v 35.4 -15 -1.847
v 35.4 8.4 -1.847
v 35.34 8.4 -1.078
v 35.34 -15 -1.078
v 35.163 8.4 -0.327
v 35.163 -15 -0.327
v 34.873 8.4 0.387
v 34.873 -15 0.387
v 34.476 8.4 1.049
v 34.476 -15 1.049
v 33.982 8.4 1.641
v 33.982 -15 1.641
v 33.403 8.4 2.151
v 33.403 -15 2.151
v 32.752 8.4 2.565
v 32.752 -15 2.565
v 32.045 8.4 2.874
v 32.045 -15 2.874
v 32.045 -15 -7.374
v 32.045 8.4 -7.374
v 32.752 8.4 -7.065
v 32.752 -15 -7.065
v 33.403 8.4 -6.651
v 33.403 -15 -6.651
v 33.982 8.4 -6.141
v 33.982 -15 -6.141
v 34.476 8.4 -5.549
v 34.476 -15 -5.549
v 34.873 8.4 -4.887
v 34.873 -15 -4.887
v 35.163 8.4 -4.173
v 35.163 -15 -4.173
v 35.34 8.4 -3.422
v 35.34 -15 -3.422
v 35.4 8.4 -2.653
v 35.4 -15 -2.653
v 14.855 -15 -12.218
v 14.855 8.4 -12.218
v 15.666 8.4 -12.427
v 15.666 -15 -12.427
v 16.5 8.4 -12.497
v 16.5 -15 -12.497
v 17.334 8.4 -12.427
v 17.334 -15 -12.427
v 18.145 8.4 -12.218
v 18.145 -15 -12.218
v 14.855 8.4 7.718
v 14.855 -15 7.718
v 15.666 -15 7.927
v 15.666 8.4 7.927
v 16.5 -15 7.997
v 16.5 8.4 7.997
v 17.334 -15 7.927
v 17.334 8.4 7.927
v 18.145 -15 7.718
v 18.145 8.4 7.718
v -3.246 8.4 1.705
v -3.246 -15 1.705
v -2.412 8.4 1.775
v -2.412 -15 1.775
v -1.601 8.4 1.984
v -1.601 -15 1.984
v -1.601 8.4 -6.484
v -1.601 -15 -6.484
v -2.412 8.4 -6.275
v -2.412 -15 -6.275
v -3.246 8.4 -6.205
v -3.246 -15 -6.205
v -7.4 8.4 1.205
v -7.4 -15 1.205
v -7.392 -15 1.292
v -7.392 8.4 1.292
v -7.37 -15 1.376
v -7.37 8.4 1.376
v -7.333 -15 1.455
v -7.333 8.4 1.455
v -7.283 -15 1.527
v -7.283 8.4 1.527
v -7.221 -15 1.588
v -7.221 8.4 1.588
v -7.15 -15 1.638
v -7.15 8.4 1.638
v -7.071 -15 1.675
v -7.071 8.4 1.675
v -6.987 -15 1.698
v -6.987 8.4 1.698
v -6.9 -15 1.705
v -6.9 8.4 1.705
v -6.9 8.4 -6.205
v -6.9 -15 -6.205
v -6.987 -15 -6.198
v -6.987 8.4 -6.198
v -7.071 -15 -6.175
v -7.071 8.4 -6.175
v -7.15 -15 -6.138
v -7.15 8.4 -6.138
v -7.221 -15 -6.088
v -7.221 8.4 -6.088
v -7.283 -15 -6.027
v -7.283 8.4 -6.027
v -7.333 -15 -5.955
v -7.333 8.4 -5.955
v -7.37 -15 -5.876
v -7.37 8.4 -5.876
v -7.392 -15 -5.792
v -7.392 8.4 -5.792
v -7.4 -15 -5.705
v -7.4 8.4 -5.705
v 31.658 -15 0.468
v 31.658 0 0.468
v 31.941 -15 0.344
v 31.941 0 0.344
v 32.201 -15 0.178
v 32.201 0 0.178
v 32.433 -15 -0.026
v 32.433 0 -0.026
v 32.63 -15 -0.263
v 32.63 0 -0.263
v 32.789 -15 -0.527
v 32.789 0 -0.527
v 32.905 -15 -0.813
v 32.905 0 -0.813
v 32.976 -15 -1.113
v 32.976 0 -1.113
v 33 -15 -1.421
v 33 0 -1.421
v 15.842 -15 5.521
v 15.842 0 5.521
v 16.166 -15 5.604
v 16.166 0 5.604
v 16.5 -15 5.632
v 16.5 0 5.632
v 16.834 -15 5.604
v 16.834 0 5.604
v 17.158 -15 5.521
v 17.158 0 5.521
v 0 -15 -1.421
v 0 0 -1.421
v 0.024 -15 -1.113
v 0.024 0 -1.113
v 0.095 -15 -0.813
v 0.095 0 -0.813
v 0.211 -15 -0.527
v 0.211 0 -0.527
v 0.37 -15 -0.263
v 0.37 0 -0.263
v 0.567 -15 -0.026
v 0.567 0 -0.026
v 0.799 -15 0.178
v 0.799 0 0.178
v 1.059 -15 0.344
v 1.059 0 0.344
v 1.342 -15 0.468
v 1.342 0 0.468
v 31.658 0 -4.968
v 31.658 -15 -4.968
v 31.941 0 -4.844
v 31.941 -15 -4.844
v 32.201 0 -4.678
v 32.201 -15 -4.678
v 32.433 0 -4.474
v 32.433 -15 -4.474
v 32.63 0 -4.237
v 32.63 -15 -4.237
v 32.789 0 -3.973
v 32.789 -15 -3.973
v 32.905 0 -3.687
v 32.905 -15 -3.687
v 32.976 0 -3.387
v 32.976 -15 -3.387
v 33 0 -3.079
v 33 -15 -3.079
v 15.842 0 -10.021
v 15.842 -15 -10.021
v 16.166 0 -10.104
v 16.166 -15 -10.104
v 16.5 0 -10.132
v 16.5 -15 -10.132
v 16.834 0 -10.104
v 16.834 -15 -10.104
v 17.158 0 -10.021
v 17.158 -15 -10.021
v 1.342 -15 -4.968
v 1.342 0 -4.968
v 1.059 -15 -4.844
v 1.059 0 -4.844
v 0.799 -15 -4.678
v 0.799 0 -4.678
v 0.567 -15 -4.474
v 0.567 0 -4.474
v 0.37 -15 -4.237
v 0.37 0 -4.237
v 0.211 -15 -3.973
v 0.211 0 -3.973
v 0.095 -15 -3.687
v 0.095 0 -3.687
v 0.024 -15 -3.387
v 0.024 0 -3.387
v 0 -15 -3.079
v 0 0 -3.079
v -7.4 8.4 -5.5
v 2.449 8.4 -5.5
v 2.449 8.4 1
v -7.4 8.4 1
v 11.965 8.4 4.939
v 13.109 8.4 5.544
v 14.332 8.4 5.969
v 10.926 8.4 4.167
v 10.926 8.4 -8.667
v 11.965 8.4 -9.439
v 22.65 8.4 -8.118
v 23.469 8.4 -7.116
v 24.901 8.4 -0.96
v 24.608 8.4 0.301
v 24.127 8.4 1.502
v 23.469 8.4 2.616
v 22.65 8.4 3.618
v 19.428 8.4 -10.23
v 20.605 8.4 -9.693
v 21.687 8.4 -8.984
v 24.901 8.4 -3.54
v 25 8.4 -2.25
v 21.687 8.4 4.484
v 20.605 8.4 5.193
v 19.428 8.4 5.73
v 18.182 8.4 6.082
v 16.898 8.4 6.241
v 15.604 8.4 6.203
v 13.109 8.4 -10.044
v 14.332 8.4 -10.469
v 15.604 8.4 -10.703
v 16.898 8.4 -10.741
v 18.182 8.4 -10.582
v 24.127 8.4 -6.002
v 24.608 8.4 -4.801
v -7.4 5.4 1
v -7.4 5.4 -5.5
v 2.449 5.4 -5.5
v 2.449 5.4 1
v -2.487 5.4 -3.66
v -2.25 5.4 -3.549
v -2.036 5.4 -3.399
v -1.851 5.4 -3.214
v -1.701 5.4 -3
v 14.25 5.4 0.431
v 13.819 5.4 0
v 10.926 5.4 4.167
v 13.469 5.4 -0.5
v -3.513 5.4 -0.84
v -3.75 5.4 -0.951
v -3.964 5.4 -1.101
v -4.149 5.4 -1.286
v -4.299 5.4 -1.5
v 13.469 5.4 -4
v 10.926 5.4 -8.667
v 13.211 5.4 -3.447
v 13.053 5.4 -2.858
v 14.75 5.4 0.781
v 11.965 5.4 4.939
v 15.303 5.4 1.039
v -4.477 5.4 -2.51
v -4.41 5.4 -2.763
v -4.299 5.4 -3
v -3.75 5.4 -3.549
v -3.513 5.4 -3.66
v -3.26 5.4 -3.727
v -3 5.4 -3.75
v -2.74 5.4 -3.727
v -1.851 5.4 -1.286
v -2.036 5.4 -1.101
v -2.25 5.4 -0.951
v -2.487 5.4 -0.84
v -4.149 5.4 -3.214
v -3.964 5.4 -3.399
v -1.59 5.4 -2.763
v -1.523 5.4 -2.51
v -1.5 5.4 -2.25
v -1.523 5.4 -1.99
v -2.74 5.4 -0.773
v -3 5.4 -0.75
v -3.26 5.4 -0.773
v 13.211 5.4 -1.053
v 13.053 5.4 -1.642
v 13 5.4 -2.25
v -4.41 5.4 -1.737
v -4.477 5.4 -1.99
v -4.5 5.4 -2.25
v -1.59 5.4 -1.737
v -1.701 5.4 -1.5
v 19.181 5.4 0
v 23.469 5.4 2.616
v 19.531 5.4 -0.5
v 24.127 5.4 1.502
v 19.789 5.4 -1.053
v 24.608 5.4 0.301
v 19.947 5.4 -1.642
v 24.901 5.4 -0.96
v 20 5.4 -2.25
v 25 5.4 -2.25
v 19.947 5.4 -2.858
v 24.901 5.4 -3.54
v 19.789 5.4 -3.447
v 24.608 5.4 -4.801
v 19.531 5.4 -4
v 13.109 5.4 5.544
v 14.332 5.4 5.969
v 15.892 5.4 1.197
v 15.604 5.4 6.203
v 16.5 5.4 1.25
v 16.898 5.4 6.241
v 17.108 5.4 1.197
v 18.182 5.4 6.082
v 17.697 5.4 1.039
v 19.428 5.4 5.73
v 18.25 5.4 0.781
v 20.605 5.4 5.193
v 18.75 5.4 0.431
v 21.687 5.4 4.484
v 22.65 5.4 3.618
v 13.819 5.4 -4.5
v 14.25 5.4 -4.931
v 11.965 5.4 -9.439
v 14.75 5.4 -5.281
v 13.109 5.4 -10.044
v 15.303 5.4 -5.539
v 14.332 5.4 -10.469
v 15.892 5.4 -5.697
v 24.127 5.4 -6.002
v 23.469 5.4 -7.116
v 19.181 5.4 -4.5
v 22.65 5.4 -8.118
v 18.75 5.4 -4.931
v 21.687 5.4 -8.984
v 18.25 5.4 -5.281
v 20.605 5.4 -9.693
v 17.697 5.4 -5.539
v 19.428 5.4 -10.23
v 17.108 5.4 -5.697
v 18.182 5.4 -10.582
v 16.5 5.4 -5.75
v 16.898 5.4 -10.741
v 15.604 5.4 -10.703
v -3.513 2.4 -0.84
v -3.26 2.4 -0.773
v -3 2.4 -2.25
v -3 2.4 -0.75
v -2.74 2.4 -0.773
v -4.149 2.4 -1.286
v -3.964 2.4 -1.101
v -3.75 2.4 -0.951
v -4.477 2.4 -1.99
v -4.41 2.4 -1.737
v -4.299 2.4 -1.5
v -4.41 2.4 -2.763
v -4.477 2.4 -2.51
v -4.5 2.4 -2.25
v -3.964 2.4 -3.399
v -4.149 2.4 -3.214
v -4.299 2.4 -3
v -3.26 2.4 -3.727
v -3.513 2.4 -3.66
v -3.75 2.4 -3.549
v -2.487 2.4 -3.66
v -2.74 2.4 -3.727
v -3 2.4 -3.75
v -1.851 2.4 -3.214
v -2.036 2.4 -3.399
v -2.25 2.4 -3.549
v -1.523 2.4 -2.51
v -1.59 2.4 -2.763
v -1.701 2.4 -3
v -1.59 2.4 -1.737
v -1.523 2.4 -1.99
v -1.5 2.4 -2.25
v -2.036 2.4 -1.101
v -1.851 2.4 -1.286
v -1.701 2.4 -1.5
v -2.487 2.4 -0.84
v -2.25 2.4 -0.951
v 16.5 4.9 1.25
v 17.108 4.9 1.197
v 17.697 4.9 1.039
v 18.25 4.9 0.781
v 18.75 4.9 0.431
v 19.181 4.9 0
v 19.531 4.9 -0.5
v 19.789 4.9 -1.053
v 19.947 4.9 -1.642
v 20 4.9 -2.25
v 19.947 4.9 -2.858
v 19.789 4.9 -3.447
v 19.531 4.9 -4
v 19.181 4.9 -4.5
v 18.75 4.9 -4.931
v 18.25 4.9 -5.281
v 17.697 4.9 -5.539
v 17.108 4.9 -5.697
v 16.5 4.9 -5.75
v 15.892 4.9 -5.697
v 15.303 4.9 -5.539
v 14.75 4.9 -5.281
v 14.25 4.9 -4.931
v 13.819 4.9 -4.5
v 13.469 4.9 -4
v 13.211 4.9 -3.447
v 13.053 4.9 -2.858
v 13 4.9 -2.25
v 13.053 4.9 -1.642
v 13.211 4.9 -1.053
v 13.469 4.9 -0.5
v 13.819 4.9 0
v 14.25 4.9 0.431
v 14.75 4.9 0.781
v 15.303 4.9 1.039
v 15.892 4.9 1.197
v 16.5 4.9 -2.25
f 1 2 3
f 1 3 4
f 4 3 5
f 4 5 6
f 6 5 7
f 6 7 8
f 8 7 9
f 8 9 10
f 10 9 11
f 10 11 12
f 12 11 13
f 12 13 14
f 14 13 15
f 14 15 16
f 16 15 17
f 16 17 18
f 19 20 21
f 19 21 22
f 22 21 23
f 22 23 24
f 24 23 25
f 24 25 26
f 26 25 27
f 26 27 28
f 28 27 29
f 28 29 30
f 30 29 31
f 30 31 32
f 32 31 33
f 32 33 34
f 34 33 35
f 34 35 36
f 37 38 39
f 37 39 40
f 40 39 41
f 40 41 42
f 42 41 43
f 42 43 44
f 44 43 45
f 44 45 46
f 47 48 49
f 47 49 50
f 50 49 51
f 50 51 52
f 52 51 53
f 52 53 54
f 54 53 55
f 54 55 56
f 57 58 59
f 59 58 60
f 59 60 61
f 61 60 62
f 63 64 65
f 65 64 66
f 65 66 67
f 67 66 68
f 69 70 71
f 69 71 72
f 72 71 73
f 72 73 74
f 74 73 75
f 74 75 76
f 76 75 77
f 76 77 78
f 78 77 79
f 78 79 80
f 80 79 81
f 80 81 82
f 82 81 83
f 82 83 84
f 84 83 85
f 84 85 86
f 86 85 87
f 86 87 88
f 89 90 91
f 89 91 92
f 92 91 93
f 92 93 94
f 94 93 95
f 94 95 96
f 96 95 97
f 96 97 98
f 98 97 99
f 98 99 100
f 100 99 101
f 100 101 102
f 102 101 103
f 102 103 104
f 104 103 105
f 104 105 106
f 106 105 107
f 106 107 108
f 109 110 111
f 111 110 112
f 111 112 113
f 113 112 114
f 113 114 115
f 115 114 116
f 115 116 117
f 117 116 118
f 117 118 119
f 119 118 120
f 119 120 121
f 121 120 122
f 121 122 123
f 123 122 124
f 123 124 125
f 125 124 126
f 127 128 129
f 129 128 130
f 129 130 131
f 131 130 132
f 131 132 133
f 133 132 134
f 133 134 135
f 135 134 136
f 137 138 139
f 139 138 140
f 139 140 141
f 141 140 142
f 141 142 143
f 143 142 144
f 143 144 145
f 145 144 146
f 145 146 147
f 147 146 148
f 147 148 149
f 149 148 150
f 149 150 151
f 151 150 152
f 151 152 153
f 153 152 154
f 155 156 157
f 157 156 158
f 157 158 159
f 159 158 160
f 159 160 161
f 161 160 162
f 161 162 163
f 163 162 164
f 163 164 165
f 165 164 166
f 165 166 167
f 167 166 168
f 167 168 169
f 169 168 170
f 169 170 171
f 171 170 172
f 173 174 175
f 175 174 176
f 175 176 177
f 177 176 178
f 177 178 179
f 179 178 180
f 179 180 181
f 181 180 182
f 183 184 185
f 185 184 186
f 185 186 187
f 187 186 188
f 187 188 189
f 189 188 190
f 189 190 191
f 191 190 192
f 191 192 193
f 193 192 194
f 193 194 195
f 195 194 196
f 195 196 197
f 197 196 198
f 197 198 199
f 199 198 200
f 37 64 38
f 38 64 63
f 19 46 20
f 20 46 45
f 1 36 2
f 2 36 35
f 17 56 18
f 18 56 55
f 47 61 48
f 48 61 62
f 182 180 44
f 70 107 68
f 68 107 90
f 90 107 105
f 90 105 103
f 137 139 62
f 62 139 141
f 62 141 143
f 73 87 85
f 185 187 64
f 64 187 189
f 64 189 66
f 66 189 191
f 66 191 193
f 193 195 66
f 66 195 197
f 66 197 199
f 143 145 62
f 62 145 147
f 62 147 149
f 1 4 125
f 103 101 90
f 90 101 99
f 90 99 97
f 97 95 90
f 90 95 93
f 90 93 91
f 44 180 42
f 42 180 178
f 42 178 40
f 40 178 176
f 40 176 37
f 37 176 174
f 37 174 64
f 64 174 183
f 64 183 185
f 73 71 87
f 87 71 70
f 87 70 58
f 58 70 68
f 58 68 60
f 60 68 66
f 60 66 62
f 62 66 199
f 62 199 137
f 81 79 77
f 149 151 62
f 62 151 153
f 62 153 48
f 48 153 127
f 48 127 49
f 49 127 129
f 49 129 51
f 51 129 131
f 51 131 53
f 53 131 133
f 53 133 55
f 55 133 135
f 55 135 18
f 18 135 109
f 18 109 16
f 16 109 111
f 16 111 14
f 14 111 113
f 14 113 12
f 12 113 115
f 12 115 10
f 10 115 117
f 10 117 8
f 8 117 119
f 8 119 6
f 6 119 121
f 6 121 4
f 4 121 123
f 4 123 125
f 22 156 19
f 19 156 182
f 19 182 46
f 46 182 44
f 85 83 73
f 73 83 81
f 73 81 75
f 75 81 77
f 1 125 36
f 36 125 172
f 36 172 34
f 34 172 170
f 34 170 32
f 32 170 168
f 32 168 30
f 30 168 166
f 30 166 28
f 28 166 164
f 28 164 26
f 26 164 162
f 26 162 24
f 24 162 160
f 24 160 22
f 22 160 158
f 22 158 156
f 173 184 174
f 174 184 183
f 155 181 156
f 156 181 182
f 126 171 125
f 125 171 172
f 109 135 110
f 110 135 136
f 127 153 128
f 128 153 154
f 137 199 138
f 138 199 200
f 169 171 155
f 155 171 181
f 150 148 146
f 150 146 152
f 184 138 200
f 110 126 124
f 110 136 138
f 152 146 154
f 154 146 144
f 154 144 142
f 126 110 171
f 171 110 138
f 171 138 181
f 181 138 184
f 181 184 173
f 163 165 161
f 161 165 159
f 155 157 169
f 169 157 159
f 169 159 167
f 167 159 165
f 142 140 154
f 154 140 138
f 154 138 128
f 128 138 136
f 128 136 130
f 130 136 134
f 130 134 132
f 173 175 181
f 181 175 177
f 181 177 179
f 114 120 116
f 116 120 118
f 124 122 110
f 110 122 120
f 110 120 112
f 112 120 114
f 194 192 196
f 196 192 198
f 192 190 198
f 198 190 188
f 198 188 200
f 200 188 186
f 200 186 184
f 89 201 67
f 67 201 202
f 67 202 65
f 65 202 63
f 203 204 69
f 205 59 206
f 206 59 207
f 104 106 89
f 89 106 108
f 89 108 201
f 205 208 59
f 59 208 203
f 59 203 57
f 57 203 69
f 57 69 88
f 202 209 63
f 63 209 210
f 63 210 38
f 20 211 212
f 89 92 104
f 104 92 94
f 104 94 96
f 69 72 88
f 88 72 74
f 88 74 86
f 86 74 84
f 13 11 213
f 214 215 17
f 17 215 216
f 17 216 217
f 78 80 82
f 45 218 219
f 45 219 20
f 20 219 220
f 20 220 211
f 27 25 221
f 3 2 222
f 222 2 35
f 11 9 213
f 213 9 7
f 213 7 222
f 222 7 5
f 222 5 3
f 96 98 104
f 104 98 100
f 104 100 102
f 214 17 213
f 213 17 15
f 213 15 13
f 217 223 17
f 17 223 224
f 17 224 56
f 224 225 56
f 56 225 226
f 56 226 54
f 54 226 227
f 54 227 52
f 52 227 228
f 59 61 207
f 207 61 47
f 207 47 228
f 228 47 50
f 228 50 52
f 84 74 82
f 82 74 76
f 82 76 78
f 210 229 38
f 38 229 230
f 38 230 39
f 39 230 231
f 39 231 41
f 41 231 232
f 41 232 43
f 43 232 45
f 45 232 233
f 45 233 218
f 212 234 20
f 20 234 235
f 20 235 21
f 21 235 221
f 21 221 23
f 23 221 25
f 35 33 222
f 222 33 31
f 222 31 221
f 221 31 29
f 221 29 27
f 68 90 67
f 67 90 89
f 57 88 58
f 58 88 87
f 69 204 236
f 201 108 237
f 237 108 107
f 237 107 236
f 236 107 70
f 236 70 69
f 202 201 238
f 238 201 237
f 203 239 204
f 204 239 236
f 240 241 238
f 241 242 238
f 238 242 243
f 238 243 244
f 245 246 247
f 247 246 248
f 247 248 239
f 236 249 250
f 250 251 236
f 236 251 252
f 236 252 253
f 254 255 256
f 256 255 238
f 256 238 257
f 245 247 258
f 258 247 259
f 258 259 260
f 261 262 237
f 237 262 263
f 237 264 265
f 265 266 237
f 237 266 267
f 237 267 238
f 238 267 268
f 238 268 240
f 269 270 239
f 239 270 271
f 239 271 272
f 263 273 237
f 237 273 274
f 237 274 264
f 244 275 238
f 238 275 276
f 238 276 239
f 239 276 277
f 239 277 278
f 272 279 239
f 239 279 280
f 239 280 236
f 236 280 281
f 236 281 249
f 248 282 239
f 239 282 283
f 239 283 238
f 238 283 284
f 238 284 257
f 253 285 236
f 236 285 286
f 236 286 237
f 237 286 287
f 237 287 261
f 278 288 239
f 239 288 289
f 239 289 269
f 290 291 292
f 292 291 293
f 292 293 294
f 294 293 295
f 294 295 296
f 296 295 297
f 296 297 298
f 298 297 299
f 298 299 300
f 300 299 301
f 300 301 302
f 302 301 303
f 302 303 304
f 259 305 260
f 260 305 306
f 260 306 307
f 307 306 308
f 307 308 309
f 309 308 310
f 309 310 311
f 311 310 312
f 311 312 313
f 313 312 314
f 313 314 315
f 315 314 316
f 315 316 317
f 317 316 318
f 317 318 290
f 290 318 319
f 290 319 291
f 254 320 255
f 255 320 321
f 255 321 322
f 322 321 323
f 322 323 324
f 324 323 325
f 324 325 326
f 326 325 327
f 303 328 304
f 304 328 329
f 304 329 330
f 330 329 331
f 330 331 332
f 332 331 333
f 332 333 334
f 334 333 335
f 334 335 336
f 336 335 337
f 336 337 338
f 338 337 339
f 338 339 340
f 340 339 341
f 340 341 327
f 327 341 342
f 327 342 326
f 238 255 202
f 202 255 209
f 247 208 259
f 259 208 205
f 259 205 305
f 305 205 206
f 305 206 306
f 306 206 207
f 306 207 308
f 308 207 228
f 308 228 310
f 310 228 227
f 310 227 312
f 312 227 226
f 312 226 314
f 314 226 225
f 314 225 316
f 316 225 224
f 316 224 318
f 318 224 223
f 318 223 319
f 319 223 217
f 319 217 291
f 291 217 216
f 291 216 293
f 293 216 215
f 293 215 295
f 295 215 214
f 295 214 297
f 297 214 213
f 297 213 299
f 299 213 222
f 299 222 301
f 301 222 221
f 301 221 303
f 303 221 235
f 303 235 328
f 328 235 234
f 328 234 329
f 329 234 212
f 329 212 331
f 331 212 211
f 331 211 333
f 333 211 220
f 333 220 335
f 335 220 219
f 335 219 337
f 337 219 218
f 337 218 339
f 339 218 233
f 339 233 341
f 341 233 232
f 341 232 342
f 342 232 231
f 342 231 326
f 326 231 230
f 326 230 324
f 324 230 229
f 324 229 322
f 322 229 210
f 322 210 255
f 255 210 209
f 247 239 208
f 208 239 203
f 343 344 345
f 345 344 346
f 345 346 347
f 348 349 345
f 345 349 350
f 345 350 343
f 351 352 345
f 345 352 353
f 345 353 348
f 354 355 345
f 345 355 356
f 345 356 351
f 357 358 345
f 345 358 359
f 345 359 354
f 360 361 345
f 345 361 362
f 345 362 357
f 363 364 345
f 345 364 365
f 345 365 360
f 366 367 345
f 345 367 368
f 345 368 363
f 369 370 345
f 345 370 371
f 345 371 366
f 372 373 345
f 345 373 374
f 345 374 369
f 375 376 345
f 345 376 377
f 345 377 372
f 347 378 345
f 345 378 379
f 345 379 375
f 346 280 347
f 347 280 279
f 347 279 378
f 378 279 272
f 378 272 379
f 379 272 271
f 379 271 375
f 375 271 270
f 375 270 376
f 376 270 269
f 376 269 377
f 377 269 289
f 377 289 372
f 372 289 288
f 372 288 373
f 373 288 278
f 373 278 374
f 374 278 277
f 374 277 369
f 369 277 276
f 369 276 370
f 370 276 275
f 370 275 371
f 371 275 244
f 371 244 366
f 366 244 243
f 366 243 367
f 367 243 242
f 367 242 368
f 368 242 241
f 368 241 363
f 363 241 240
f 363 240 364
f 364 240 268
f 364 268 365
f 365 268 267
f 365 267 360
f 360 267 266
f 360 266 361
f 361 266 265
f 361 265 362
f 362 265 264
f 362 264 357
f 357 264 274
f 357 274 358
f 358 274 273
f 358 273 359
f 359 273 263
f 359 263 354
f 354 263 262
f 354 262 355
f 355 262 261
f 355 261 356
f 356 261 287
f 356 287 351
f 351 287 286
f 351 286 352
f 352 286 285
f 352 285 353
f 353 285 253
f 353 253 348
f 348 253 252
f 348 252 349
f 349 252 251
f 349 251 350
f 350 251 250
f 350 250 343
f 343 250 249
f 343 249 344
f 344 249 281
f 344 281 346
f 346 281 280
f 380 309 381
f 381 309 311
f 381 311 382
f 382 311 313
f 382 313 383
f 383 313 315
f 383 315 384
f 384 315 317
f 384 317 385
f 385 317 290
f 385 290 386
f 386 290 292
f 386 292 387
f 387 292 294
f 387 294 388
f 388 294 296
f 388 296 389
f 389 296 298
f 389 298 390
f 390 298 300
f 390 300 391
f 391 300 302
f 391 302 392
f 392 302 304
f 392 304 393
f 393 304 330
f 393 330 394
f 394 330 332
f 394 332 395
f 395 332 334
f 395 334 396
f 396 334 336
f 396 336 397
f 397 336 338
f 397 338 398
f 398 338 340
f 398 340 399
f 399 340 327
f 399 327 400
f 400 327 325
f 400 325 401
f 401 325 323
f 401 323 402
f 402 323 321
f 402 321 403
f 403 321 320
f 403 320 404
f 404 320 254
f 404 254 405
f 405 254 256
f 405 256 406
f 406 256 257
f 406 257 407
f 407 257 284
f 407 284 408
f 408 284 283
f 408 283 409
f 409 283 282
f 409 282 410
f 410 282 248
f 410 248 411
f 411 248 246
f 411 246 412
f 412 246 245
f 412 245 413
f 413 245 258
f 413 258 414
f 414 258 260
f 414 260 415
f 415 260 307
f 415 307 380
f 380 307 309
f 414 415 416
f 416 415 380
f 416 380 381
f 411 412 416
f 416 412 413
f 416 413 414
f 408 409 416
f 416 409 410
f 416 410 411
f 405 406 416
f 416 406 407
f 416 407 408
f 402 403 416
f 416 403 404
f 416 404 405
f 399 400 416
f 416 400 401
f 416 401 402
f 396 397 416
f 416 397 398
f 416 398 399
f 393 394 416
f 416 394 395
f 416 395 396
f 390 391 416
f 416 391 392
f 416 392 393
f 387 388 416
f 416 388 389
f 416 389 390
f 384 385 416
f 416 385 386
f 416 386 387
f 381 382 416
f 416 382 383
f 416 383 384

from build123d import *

# Parameters (mm, degrees)
BOSS_EXTRUDE1_DEPTH = 15
FILLET2_R           = 2
FILLET3_R           = 2
FILLET4_R           = 2
FILLET5_R           = 2
FILLET6_R           = 2
FILLET7_R           = 2
BOSS_EXTRUDE2_DEPTH = 8.4
SKETCH4_W           = 7.910383638
SKETCH4_H           = 23.4
BOSS_EXTRUDE3_DEPTH = 5
CUT_EXTRUDE1_DEPTH  = 6
CUT_EXTRUDE2_DEPTH  = 3
SKETCH5_R           = 3.5
CUT_EXTRUDE3_DEPTH  = 0.5
FILLET8_R           = 0.5
FILLET9_R           = 0.5
FILLET10_R          = 5
FILLET11_R          = 5
FILLET12_R          = 5
FILLET13_R          = 5
FILLET14_R          = 5
FILLET15_R          = 5


with BuildPart() as part:
    # Sketch1 → Boss-Extrude1 (new body)
    with BuildSketch(Plane(origin=(0, 0, 0), x_dir=(1, 0, 0), z_dir=(0, 1, 0))):
        Polygon((-2.4, -1.705191819), (16.5, -8.291555455), (35.4, -1.705191819), (35.4, 6.205191819), (16.5, 12.791555455), (-2.4, 6.205191819), align=None)
        Polygon((0, 0), (16.5, -5.75), (33, 0), (33, 4.5), (16.5, 10.25), (0, 4.5), align=None, mode=Mode.SUBTRACT)
    extrude(amount=-BOSS_EXTRUDE1_DEPTH)

    # Fillet2
    fillet2_edges = [part.edges().sort_by_distance(p)[0] for p in [
        (0, -7.5, -4.5),
    ]]
    fillet(fillet2_edges, radius=FILLET2_R)

    # Fillet3
    fillet3_edges = [part.edges().sort_by_distance(p)[0] for p in [
        (16.5, -7.5, -10.25),
    ]]
    fillet(fillet3_edges, radius=FILLET3_R)

    # Fillet4
    fillet4_edges = [part.edges().sort_by_distance(p)[0] for p in [
        (33, -7.5, -4.5),
    ]]
    fillet(fillet4_edges, radius=FILLET4_R)

    # Fillet5
    fillet5_edges = [part.edges().sort_by_distance(p)[0] for p in [
        (0, -7.5, 0),
    ]]
    fillet(fillet5_edges, radius=FILLET5_R)

    # Fillet6
    fillet6_edges = [part.edges().sort_by_distance(p)[0] for p in [
        (16.5, -7.5, 5.75),
    ]]
    fillet(fillet6_edges, radius=FILLET6_R)

    # Fillet7
    fillet7_edges = [part.edges().sort_by_distance(p)[0] for p in [
        (33, -7.5, 0),
    ]]
    fillet(fillet7_edges, radius=FILLET7_R)

    # Sketch2 → Boss-Extrude2 (add)
    with BuildSketch(Plane(origin=(0, 0, 0), x_dir=(1, 0, 0), z_dir=(0, 1, 0))):
        Polygon((16.5, -8.291555455), (-2.4, -1.705191819), (-2.4, 6.205191819), (16.5, 12.791555455), (35.4, 6.205191819), (35.4, -1.705191819), align=None)
    extrude(amount=BOSS_EXTRUDE2_DEPTH)

    # Sketch4 → Boss-Extrude3 (add)
    with BuildSketch(Plane.ZY.offset(2.4)):
        with Locations((-2.25, -3.3)):
            Rectangle(SKETCH4_W, SKETCH4_H)
    extrude(amount=BOSS_EXTRUDE3_DEPTH)

    # Sketch3 → Cut-Extrude1 (cut)
    with BuildSketch(Plane(origin=(0, 8.4, 0), x_dir=(1, 0, 0), z_dir=(0, 1, 0))):
        with BuildLine():
            Line((-2.4, 2.25), (-2.4, 0.875227292))
            ThreePointArc((-2.4, 0.875227292), (-1.74500996, 1.428416164), (-1.5, 2.25))
            Line((-1.5, 2.25), (-2.4, 2.25))
        make_face()
        with BuildLine():
            ThreePointArc((-4.5, 2.25), (-3.821583836, 0.99500996), (-2.4, 0.875227292))
            Line((-2.4, 0.875227292), (-2.4, 2.25))
            Line((-2.4, 2.25), (-4.5, 2.25))
        make_face()
        with BuildLine():
            Line((-2.4, 2.25), (-1.5, 2.25))
            ThreePointArc((-1.5, 2.25), (-1.74500996, 3.071583836), (-2.4, 3.624772708))
            Line((-2.4, 3.624772708), (-2.4, 2.25))
        make_face()
        with BuildLine():
            ThreePointArc((-2.4, 3.624772708), (-3.821583836, 3.50499004), (-4.5, 2.25))
            Line((-4.5, 2.25), (-2.4, 2.25))
            Line((-2.4, 2.25), (-2.4, 3.624772708))
        make_face()
        with BuildLine():
            Line((-2.4, 2.25), (-2.4, 0.875227292))
            ThreePointArc((-2.4, 0.875227292), (-1.74500996, 1.428416164), (-1.5, 2.25))
            Line((-1.5, 2.25), (-2.4, 2.25))
        make_face()
        with BuildLine():
            ThreePointArc((-4.5, 2.25), (-3.821583836, 0.99500996), (-2.4, 0.875227292))
            Line((-2.4, 0.875227292), (-2.4, 2.25))
            Line((-2.4, 2.25), (-4.5, 2.25))
        make_face()
        with BuildLine():
            Line((-2.4, 2.25), (-1.5, 2.25))
            ThreePointArc((-1.5, 2.25), (-1.74500996, 3.071583836), (-2.4, 3.624772708))
            Line((-2.4, 3.624772708), (-2.4, 2.25))
        make_face()
        with BuildLine():
            ThreePointArc((-2.4, 3.624772708), (-3.821583836, 3.50499004), (-4.5, 2.25))
            Line((-4.5, 2.25), (-2.4, 2.25))
            Line((-2.4, 2.25), (-2.4, 3.624772708))
        make_face()
        with BuildLine():
            Line((-2.4, 2.25), (-2.4, 0.875227292))
            ThreePointArc((-2.4, 0.875227292), (-1.74500996, 1.428416164), (-1.5, 2.25))
            Line((-1.5, 2.25), (-2.4, 2.25))
        make_face()
        with BuildLine():
            ThreePointArc((-4.5, 2.25), (-3.821583836, 0.99500996), (-2.4, 0.875227292))
            Line((-2.4, 0.875227292), (-2.4, 2.25))
            Line((-2.4, 2.25), (-4.5, 2.25))
        make_face()
        with BuildLine():
            Line((-2.4, 2.25), (-1.5, 2.25))
            ThreePointArc((-1.5, 2.25), (-1.74500996, 3.071583836), (-2.4, 3.624772708))
            Line((-2.4, 3.624772708), (-2.4, 2.25))
        make_face()
        with BuildLine():
            ThreePointArc((-2.4, 3.624772708), (-3.821583836, 3.50499004), (-4.5, 2.25))
            Line((-4.5, 2.25), (-2.4, 2.25))
            Line((-2.4, 2.25), (-2.4, 3.624772708))
        make_face()
        with BuildLine():
            Line((-2.4, 2.25), (-2.4, 0.875227292))
            ThreePointArc((-2.4, 0.875227292), (-1.74500996, 1.428416164), (-1.5, 2.25))
            Line((-1.5, 2.25), (-2.4, 2.25))
        make_face()
        with BuildLine():
            ThreePointArc((-4.5, 2.25), (-3.821583836, 0.99500996), (-2.4, 0.875227292))
            Line((-2.4, 0.875227292), (-2.4, 2.25))
            Line((-2.4, 2.25), (-4.5, 2.25))
        make_face()
        with BuildLine():
            Line((-2.4, 2.25), (-1.5, 2.25))
            ThreePointArc((-1.5, 2.25), (-1.74500996, 3.071583836), (-2.4, 3.624772708))
            Line((-2.4, 3.624772708), (-2.4, 2.25))
        make_face()
        with BuildLine():
            ThreePointArc((-2.4, 3.624772708), (-3.821583836, 3.50499004), (-4.5, 2.25))
            Line((-4.5, 2.25), (-2.4, 2.25))
            Line((-2.4, 2.25), (-2.4, 3.624772708))
        make_face()
    extrude(amount=-CUT_EXTRUDE1_DEPTH, mode=Mode.SUBTRACT)

    # Sketch3<3> → Cut-Extrude2 (cut)
    with BuildSketch(Plane(origin=(0, 8.4, 0), x_dir=(1, 0, 0), z_dir=(0, 1, 0))):
        with BuildLine():
            Line((16.5, -1), (16.5, -6.25))
            ThreePointArc((16.5, -6.25), (21.223610907, -4.816647013), (24.354139036, -1))
            Line((24.354139036, -1), (16.5, -1))
        make_face()
        with BuildLine():
            Line((10.926339286, -4.1675), (16.5, -6.25))
            Line((16.5, -6.25), (16.5, -1))
            Line((16.5, -1), (8.645860964, -1))
            ThreePointArc((8.645860964, -1), (9.601832447, -2.71641565), (10.926339286, -4.1675))
        make_face()
        with BuildLine():
            ThreePointArc((10.926339286, -4.1675), (13.525, -5.712372448), (16.5, -6.25))
            Line((16.5, -6.25), (10.926339286, -4.1675))
        make_face()
        with BuildLine():
            Line((16.5, 2.25), (16.5, -1))
            Line((16.5, -1), (24.354139036, -1))
            ThreePointArc((24.354139036, -1), (24.836971327, 0.593223281), (25, 2.25))
            Line((25, 2.25), (16.5, 2.25))
        make_face()
        with BuildLine():
            Line((8.645860964, -1), (16.5, -1))
            Line((16.5, -1), (16.5, 2.25))
            Line((16.5, 2.25), (8, 2.25))
            ThreePointArc((8, 2.25), (8.163028673, 0.593223281), (8.645860964, -1))
        make_face()
        with BuildLine():
            Line((16.5, 5.5), (16.5, 2.25))
            Line((16.5, 2.25), (25, 2.25))
            ThreePointArc((25, 2.25), (24.836971327, 3.906776719), (24.354139036, 5.5))
            Line((24.354139036, 5.5), (16.5, 5.5))
        make_face()
        with BuildLine():
            Line((8, 2.25), (16.5, 2.25))
            Line((16.5, 2.25), (16.5, 5.5))
            Line((16.5, 5.5), (8.645860964, 5.5))
            ThreePointArc((8.645860964, 5.5), (8.163028673, 3.906776719), (8, 2.25))
        make_face()
        with BuildLine():
            Line((16.5, 10.75), (16.5, 5.5))
            Line((16.5, 5.5), (24.354139036, 5.5))
            ThreePointArc((24.354139036, 5.5), (21.223610907, 9.316647013), (16.5, 10.75))
        make_face()
        with BuildLine():
            Line((8.645860964, 5.5), (16.5, 5.5))
            Line((16.5, 5.5), (16.5, 10.75))
            Line((16.5, 10.75), (10.926339286, 8.6675))
            ThreePointArc((10.926339286, 8.6675), (9.601832447, 7.21641565), (8.645860964, 5.5))
        make_face()
        with BuildLine():
            Line((10.926339286, 8.6675), (16.5, 10.75))
            ThreePointArc((16.5, 10.75), (13.525, 10.212372448), (10.926339286, 8.6675))
        make_face()
        with BuildLine():
            Line((16.5, 5.5), (16.5, 2.25))
            Line((16.5, 2.25), (25, 2.25))
            ThreePointArc((25, 2.25), (24.836971327, 3.906776719), (24.354139036, 5.5))
            Line((24.354139036, 5.5), (16.5, 5.5))
        make_face()
        with BuildLine():
            Line((8, 2.25), (16.5, 2.25))
            Line((16.5, 2.25), (16.5, 5.5))
            Line((16.5, 5.5), (8.645860964, 5.5))
            ThreePointArc((8.645860964, 5.5), (8.163028673, 3.906776719), (8, 2.25))
        make_face()
        with BuildLine():
            Line((16.5, 2.25), (16.5, -1))
            Line((16.5, -1), (24.354139036, -1))
            ThreePointArc((24.354139036, -1), (24.836971327, 0.593223281), (25, 2.25))
            Line((25, 2.25), (16.5, 2.25))
        make_face()
        with BuildLine():
            Line((8.645860964, -1), (16.5, -1))
            Line((16.5, -1), (16.5, 2.25))
            Line((16.5, 2.25), (8, 2.25))
            ThreePointArc((8, 2.25), (8.163028673, 0.593223281), (8.645860964, -1))
        make_face()
        with BuildLine():
            Line((2.448754504, -1), (10.926339286, -4.1675))
            ThreePointArc((10.926339286, -4.1675), (9.601832447, -2.71641565), (8.645860964, -1))
            Line((8.645860964, -1), (2.448754504, -1))
        make_face()
        with BuildLine():
            Line((2.448754504, 2.25), (2.448754504, -1))
            Line((2.448754504, -1), (8.645860964, -1))
            ThreePointArc((8.645860964, -1), (8.163028673, 0.593223281), (8, 2.25))
            Line((8, 2.25), (2.448754504, 2.25))
        make_face()
        with BuildLine():
            Line((2.448754504, 5.5), (2.448754504, 2.25))
            Line((2.448754504, 2.25), (8, 2.25))
            ThreePointArc((8, 2.25), (8.163028673, 3.906776719), (8.645860964, 5.5))
            Line((8.645860964, 5.5), (2.448754504, 5.5))
        make_face()
        with BuildLine():
            Line((10.926339286, 8.6675), (2.448754504, 5.5))
            Line((2.448754504, 5.5), (8.645860964, 5.5))
            ThreePointArc((8.645860964, 5.5), (9.601832447, 7.21641565), (10.926339286, 8.6675))
        make_face()
        with BuildLine():
            Line((-2.4, -1), (2.448754504, -1))
            Line((2.448754504, -1), (2.448754504, 2.25))
            Line((2.448754504, 2.25), (-1.5, 2.25))
            ThreePointArc((-1.5, 2.25), (-1.74500996, 1.428416164), (-2.4, 0.875227292))
            Line((-2.4, 0.875227292), (-2.4, -1))
        make_face()
        with BuildLine():
            Line((-1.5, 2.25), (2.448754504, 2.25))
            Line((2.448754504, 2.25), (2.448754504, 5.5))
            Line((2.448754504, 5.5), (-2.4, 5.5))
            Line((-2.4, 5.5), (-2.4, 3.624772708))
            ThreePointArc((-2.4, 3.624772708), (-1.74500996, 3.071583836), (-1.5, 2.25))
        make_face()
        with BuildLine():
            Line((-10, 5.5), (-10, 2.25))
            Line((-10, 2.25), (-4.5, 2.25))
            ThreePointArc((-4.5, 2.25), (-3.821583836, 3.50499004), (-2.4, 3.624772708))
            Line((-2.4, 3.624772708), (-2.4, 5.5))
            Line((-2.4, 5.5), (-10, 5.5))
        make_face()
        with BuildLine():
            Line((-10, -1), (-2.4, -1))
            Line((-2.4, -1), (-2.4, 0.875227292))
            ThreePointArc((-2.4, 0.875227292), (-3.821583836, 0.99500996), (-4.5, 2.25))
            Line((-4.5, 2.25), (-10, 2.25))
            Line((-10, 2.25), (-10, -1))
        make_face()
    extrude(amount=-CUT_EXTRUDE2_DEPTH, mode=Mode.SUBTRACT)

    # Sketch5 → Cut-Extrude3 (cut)
    with BuildSketch(Plane(origin=(0, 5.4, 0), x_dir=(1, 0, 0), z_dir=(0, 1, 0))):
        with Locations(Location((16.5, 2.25, 0), (0, 0, 270))):
            Circle(SKETCH5_R)
    extrude(amount=-CUT_EXTRUDE3_DEPTH, mode=Mode.SUBTRACT)

    # Fillet8
    fillet8_edges = [part.edges().sort_by_distance(p)[0] for p in [
        (-7.4, -3.3, -6.205191819),
    ]]
    fillet(fillet8_edges, radius=FILLET8_R)

    # Fillet9
    fillet9_edges = [part.edges().sort_by_distance(p)[0] for p in [
        (-7.4, -3.3, 1.705191819),
    ]]
    fillet(fillet9_edges, radius=FILLET9_R)

    # Fillet10
    fillet10_edges = [part.edges().sort_by_distance(p)[0] for p in [
        (-2.4, -3.3, -6.205191819),
    ]]
    fillet(fillet10_edges, radius=FILLET10_R)

    # Fillet11
    fillet11_edges = [part.edges().sort_by_distance(p)[0] for p in [
        (-2.4, -3.3, 1.705191819),
    ]]
    fillet(fillet11_edges, radius=FILLET11_R)

    # Fillet12
    fillet12_edges = [part.edges().sort_by_distance(p)[0] for p in [
        (16.5, -3.3, 8.291555455),
    ]]
    fillet(fillet12_edges, radius=FILLET12_R)

    # Fillet13
    fillet13_edges = [part.edges().sort_by_distance(p)[0] for p in [
        (16.5, -3.3, -12.791555455),
    ]]
    fillet(fillet13_edges, radius=FILLET13_R)

    # Fillet14
    fillet14_edges = [part.edges().sort_by_distance(p)[0] for p in [
        (35.4, -3.3, -6.205191819),
    ]]
    fillet(fillet14_edges, radius=FILLET14_R)

    # Fillet15
    fillet15_edges = [part.edges().sort_by_distance(p)[0] for p in [
        (35.4, -3.3, 1.705191819),
    ]]
    fillet(fillet15_edges, radius=FILLET15_R)


solid = part.part
